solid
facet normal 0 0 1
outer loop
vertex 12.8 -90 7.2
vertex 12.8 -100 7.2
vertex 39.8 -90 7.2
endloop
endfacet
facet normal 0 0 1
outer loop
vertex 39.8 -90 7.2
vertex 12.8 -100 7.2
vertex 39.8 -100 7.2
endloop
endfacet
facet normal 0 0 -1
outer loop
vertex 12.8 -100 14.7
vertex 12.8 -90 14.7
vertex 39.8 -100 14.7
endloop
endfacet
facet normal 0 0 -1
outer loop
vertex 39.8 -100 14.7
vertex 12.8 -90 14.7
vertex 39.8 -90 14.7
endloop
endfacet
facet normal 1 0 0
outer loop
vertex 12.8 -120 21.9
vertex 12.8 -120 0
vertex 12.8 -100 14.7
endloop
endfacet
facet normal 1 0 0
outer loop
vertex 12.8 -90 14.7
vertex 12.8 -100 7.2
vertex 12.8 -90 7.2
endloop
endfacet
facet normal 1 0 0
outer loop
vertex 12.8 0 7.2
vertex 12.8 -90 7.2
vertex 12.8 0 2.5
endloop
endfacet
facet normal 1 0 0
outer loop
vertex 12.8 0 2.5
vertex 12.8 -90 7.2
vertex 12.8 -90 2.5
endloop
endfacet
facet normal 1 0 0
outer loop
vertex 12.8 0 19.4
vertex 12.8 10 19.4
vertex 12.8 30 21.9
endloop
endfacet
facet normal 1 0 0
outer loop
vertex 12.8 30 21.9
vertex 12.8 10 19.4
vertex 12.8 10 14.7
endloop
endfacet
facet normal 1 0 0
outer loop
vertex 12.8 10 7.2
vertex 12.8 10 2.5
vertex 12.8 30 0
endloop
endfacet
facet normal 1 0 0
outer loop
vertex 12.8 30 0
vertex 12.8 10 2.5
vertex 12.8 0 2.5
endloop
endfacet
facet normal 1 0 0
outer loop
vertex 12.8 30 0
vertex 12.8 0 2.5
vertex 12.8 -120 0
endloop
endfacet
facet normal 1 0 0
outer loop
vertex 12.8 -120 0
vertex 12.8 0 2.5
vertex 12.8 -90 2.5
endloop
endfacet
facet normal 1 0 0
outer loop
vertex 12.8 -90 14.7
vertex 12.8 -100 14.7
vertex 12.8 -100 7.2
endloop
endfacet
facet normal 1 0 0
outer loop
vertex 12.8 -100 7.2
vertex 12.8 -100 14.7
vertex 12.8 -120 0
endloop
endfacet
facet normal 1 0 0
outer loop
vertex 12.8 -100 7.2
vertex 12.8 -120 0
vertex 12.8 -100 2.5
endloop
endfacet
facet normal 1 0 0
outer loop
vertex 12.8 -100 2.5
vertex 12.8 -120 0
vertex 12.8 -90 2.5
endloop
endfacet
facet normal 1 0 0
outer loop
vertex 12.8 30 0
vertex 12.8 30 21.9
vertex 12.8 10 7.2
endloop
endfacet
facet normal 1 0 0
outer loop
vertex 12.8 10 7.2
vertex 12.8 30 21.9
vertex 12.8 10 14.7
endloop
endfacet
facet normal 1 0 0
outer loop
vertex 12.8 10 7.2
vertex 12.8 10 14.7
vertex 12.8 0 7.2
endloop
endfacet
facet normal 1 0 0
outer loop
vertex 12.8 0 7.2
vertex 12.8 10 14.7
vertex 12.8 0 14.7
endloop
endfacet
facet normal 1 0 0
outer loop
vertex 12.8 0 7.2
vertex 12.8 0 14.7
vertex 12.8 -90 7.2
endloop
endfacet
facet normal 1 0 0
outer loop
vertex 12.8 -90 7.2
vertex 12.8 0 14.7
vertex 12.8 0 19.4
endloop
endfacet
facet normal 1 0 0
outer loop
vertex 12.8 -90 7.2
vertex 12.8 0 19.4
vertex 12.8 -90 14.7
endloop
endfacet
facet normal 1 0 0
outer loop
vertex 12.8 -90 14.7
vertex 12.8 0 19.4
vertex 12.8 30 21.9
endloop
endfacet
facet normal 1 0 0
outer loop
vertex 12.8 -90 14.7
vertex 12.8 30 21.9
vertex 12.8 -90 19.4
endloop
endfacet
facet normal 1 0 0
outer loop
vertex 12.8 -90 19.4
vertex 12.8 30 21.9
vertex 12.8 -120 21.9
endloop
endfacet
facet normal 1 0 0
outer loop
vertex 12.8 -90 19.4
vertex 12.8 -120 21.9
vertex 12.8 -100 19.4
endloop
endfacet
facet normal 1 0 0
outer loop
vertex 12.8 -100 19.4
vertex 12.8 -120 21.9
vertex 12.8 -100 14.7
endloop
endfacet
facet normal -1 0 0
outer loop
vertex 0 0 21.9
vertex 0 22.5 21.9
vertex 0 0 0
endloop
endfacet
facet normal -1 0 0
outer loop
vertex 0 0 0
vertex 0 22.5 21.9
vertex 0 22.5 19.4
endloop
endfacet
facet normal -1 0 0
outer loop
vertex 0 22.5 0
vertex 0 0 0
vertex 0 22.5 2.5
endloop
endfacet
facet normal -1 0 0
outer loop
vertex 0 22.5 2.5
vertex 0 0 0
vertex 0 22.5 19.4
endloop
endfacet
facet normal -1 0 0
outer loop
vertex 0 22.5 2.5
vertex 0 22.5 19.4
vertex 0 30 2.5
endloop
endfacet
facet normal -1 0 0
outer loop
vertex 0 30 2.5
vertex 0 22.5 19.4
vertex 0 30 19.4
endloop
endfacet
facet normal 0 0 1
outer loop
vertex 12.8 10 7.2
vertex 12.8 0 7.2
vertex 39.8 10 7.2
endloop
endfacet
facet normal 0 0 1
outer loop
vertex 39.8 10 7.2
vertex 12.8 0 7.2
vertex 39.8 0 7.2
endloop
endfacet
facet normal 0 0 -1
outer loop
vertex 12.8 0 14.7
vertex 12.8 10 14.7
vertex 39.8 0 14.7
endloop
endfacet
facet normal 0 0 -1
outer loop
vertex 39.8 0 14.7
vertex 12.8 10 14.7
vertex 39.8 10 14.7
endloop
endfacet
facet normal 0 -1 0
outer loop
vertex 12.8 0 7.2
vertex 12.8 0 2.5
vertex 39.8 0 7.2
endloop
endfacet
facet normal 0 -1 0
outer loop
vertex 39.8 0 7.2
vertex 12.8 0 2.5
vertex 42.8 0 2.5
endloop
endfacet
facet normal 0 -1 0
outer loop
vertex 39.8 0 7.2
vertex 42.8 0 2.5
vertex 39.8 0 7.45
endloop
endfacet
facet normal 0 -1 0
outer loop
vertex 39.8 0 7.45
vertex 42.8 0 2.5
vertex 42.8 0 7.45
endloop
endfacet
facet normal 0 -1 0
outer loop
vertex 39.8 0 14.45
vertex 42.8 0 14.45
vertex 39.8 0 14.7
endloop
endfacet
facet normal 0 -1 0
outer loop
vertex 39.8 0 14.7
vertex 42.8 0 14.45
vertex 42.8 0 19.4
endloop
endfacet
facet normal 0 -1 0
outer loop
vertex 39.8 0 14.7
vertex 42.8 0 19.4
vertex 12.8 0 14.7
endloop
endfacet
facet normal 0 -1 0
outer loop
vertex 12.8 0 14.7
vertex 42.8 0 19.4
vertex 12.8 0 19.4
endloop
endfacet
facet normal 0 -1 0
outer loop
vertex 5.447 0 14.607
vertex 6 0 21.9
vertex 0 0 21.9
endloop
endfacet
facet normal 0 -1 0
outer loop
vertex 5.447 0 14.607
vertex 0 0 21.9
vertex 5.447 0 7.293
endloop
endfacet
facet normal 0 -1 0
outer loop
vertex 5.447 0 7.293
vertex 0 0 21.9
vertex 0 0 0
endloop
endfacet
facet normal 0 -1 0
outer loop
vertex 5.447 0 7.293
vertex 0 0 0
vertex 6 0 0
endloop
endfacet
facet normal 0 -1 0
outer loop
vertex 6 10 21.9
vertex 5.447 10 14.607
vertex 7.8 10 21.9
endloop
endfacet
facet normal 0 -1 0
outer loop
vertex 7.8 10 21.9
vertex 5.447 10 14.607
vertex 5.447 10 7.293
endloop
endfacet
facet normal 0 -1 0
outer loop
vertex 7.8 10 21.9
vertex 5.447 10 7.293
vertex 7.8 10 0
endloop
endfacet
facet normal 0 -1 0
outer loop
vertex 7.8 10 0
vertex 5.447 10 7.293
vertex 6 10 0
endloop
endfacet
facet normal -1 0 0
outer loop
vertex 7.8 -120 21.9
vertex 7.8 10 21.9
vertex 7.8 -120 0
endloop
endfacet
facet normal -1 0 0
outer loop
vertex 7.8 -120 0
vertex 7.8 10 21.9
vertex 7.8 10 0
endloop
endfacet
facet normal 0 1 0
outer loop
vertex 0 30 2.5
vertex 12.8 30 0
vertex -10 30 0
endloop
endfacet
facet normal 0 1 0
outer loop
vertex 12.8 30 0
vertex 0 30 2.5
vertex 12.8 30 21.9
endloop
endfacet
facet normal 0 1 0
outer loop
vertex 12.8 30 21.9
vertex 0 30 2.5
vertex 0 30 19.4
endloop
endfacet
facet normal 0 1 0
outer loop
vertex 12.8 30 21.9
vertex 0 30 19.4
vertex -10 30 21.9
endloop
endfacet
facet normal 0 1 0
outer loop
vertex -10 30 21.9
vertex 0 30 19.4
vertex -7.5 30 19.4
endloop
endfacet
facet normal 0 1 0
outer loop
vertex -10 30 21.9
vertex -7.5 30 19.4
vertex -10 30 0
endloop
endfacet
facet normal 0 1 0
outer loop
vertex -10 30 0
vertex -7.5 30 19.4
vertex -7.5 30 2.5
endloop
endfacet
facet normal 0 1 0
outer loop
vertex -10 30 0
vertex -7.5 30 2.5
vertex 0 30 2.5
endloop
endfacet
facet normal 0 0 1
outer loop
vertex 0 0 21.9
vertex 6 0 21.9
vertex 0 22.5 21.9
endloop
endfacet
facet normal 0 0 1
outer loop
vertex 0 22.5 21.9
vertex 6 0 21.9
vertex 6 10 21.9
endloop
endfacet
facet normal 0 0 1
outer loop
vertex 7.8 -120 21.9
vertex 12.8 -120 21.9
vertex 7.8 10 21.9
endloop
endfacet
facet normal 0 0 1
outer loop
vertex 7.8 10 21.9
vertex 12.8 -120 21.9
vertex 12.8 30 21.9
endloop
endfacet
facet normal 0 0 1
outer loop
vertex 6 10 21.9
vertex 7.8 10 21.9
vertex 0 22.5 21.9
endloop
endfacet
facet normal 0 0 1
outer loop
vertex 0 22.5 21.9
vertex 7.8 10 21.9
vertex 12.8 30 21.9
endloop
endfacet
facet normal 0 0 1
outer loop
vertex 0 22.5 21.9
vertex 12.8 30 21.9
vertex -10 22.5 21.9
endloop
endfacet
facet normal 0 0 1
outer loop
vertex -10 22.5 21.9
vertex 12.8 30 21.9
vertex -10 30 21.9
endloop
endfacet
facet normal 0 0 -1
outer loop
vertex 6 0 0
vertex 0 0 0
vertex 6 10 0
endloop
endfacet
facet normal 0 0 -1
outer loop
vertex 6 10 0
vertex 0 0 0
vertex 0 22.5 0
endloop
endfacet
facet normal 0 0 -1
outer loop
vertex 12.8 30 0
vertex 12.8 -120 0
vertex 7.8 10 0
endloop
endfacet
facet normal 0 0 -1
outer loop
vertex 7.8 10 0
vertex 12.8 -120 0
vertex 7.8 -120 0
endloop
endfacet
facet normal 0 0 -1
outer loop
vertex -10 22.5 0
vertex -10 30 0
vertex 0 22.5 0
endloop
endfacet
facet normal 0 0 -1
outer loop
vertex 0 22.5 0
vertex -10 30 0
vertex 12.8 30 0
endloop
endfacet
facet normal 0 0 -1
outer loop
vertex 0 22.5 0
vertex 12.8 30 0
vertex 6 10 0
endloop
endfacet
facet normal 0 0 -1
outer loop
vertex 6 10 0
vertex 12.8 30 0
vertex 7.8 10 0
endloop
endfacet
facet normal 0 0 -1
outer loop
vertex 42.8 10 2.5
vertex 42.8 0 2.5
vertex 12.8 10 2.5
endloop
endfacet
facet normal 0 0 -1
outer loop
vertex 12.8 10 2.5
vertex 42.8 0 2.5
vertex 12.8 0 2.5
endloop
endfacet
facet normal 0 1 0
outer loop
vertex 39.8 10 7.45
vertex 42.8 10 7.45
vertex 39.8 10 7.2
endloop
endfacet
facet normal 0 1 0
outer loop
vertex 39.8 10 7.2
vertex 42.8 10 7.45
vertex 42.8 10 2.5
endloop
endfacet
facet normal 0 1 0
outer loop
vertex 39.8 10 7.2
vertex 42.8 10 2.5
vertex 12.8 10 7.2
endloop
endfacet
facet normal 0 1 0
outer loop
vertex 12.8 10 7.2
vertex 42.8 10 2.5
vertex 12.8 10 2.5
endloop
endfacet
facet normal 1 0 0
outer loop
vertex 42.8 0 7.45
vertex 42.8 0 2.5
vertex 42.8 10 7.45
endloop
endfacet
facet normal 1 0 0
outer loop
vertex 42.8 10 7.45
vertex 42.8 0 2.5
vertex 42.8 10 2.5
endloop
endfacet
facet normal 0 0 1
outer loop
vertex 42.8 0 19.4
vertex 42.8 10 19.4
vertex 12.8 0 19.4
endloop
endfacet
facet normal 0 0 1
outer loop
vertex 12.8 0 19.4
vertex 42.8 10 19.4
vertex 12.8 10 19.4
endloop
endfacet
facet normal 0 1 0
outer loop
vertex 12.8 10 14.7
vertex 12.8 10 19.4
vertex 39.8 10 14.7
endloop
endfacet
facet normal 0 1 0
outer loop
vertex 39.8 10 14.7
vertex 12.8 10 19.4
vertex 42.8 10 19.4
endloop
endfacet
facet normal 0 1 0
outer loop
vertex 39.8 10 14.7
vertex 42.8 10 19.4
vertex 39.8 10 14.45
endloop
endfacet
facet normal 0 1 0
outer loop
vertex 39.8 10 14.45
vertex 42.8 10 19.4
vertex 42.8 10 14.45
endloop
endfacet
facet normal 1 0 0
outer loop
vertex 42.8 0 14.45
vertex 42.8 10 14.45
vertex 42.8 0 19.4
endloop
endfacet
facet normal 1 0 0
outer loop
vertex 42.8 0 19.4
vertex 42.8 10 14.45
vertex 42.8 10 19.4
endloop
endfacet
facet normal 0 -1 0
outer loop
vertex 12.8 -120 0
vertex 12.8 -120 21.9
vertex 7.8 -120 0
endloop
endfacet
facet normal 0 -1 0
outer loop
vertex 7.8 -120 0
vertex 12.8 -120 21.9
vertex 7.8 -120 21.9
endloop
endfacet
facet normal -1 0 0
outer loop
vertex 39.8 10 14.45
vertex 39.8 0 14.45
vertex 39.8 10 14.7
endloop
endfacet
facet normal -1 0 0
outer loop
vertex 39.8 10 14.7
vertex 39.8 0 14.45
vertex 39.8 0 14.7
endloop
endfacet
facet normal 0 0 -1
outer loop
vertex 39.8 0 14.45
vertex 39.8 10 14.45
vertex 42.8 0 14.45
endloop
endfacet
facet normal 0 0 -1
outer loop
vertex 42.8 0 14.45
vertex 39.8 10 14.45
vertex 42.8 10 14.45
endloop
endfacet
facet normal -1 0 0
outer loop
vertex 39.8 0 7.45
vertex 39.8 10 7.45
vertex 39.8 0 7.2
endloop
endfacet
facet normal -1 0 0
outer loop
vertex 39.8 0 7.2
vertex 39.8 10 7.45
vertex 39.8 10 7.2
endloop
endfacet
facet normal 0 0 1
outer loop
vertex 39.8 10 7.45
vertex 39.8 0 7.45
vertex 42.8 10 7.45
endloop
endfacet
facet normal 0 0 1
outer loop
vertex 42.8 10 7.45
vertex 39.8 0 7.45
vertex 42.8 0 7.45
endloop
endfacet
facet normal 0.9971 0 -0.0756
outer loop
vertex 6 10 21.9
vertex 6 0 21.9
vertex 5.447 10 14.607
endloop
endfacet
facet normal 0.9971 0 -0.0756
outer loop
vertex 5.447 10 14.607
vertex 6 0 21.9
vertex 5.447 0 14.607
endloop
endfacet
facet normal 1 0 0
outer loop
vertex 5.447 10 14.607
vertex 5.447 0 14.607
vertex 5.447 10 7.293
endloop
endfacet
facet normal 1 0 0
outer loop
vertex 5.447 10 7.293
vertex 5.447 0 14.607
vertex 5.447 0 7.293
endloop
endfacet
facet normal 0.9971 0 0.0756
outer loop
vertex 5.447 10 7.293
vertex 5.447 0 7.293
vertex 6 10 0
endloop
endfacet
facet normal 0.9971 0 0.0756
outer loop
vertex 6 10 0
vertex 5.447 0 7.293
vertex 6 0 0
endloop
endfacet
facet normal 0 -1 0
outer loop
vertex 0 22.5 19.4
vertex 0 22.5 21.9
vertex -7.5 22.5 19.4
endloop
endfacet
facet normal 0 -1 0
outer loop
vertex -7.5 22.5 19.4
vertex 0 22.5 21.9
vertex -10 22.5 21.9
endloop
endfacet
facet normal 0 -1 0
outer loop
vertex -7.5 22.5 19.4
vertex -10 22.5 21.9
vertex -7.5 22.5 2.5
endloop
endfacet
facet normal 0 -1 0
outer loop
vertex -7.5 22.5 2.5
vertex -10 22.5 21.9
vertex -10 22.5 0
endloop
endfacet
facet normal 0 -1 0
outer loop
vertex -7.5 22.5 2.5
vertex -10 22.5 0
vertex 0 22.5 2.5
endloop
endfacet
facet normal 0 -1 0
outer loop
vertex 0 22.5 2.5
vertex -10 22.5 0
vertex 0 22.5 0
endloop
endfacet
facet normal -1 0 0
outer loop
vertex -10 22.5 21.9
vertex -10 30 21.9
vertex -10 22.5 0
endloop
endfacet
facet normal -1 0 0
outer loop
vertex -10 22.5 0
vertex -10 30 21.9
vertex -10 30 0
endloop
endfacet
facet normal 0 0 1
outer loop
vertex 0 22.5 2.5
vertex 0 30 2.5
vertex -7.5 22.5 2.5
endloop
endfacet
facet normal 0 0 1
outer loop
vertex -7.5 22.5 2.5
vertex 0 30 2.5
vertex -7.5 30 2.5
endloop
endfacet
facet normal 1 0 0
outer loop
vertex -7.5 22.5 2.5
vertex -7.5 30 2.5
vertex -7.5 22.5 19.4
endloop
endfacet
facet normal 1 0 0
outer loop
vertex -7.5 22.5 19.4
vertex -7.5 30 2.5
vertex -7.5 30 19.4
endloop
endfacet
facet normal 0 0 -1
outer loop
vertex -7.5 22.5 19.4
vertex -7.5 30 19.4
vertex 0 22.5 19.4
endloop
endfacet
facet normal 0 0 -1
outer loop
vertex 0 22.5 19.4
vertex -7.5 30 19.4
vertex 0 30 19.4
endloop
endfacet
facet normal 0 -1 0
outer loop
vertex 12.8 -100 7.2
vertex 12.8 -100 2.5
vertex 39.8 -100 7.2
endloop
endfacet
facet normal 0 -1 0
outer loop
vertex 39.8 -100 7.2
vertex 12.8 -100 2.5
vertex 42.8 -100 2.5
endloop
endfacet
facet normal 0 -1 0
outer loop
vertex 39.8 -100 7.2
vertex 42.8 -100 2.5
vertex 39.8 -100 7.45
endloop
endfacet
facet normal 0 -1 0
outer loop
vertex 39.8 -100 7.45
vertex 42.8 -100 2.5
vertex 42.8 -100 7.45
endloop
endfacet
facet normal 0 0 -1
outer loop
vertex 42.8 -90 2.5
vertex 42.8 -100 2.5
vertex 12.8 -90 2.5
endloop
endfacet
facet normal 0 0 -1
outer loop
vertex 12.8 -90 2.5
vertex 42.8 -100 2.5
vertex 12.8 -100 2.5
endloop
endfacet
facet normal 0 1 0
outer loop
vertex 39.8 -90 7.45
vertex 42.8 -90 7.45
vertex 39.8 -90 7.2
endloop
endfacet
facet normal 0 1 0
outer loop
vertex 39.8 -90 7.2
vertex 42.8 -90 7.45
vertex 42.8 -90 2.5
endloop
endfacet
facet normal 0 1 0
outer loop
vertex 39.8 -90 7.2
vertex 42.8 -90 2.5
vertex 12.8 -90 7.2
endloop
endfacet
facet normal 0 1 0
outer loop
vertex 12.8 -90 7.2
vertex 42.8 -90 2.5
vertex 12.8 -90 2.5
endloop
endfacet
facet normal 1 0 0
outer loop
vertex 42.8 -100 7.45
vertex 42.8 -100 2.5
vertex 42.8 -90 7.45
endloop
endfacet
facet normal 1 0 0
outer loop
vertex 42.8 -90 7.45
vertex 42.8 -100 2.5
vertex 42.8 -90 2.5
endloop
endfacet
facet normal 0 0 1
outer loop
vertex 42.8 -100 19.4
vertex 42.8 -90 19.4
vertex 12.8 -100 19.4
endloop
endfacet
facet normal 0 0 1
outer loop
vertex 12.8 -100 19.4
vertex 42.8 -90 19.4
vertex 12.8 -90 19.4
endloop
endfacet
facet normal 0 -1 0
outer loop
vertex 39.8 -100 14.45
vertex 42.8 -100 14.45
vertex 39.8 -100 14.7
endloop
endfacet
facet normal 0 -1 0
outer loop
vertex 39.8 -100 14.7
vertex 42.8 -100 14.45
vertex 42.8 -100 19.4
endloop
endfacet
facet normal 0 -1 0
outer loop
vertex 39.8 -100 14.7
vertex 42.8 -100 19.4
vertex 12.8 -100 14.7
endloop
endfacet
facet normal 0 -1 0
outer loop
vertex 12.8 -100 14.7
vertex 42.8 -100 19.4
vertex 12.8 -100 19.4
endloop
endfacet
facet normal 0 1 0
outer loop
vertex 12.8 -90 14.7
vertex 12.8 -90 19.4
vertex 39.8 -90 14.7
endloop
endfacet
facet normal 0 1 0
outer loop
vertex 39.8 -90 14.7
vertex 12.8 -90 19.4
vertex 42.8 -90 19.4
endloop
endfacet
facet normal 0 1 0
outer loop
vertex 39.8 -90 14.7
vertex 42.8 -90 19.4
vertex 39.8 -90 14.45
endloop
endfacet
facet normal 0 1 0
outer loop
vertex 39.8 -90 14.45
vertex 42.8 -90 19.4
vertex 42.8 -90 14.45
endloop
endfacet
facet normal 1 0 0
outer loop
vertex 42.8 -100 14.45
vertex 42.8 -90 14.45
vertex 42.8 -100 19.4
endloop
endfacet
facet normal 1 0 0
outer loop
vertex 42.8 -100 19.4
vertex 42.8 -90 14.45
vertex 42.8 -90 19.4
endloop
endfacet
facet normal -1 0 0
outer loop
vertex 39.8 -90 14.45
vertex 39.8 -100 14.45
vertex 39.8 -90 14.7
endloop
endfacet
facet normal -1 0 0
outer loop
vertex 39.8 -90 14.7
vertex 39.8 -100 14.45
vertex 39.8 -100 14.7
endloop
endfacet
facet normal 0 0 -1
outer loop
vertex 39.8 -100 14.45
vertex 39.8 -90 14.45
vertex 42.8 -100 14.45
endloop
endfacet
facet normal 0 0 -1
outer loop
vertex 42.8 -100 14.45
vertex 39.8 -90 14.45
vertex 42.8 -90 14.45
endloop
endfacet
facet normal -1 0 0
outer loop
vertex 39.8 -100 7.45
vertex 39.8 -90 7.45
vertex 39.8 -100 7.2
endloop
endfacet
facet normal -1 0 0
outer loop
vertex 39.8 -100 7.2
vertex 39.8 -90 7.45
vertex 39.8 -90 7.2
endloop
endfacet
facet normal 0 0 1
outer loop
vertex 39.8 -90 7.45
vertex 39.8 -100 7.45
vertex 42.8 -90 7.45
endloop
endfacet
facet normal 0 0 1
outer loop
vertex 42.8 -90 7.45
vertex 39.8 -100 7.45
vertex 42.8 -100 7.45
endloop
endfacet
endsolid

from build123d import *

# Parameters (mm, degrees)
BOSS_EXTRUDE1_DEPTH      = 21.9
SKETCH2_W                = 4.7
SKETCH2_H                = 10
BOSS_EXTRUDE2_DEPTH      = 30
SKETCH3_W                = 5
SKETCH3_H                = 21.9
BOSS_EXTRUDE3_DEPTH      = 120
SKETCH4_W                = 3
SKETCH4_H                = 10
BOSS_EXTRUDE4_DEPTH      = 0.25
SKETCH5_W                = 3
SKETCH5_H                = 10
BOSS_EXTRUDE5_DEPTH      = 0.25
CORTE_EXTRUS_O1_DEPTH    = 10
ESBO_O3_W                = 21.9
ESBO_O3_H                = 7.5
RESSALTO_EXTRUS_O2_DEPTH = 10
ESBO_O4_W                = 7.5
ESBO_O4_H                = 16.9
CORTE_EXTRUS_O2_DEPTH    = 10
PADR_O_LINEAR1_COUNT     = 2
PADR_O_LINEAR1_PITCH     = 100


with BuildPart() as part:
    # Sketch1 → Boss-Extrude1 (new body)
    with BuildSketch(Plane.XY):
        Polygon((0, 0), (0, 30), (12.8, 30), (12.8, 0), (7.8, 0), (7.8, 10), (6, 10), (6, 0), align=None)
    extrude(amount=BOSS_EXTRUDE1_DEPTH)

    # Sketch2 → Boss-Extrude2 (add)
    with BuildSketch(Plane(origin=(12.8, 0, 0), x_dir=(0, 0, -1), z_dir=(1, 0, 0))):
        with Locations((-17.05, 5)):
            Rectangle(SKETCH2_W, SKETCH2_H)
        with Locations((-4.85, 5)):
            Rectangle(SKETCH2_W, SKETCH2_H)
    boss_extrude2 = extrude(amount=BOSS_EXTRUDE2_DEPTH)

    # Sketch3 → Boss-Extrude3 (add)
    with BuildSketch(Plane.XZ):
        with Locations((10.3, 10.95)):
            Rectangle(SKETCH3_W, SKETCH3_H)
    extrude(amount=BOSS_EXTRUDE3_DEPTH)

    # Sketch4 → Boss-Extrude4 (add)
    with BuildSketch(Plane(origin=(0, 0, 14.7), x_dir=(-1, 0, 0), z_dir=(0, 0, -1))):
        with Locations((-41.3, 5)):
            Rectangle(SKETCH4_W, SKETCH4_H)
    boss_extrude4 = extrude(amount=BOSS_EXTRUDE4_DEPTH)

    # Sketch5 → Boss-Extrude5 (add)
    with BuildSketch(Plane.XY.offset(7.2)):
        with Locations((41.3, 5)):
            Rectangle(SKETCH5_W, SKETCH5_H)
    boss_extrude5 = extrude(amount=BOSS_EXTRUDE5_DEPTH)

    # Esboço2 → Corte-extrusão1 (cut)
    with BuildSketch(Plane.XZ):
        with BuildLine():
            Line((6, 21.9), (6, 0))
            ThreePointArc((6, 0), (5.377380148, 10.95), (6, 21.9))
        make_face()
    extrude(amount=-CORTE_EXTRUS_O1_DEPTH, mode=Mode.SUBTRACT)

    # Esboço3 → Ressalto-extrusão2 (add)
    with BuildSketch(Plane.ZY):
        with Locations((10.95, 26.25)):
            Rectangle(ESBO_O3_W, ESBO_O3_H)
    extrude(amount=RESSALTO_EXTRUS_O2_DEPTH)

    # Esboço4 → Corte-extrusão2 (cut)
    with BuildSketch(Plane.XZ.offset(-22.5)):
        with Locations((-3.75, 10.95)):
            Rectangle(ESBO_O4_W, ESBO_O4_H)
    extrude(amount=-CORTE_EXTRUS_O2_DEPTH, mode=Mode.SUBTRACT)

    # Padrão linear1: Boss-Extrude2, Boss-Extrude4, Boss-Extrude5 ×2
    with Locations(*[(0, -i * PADR_O_LINEAR1_PITCH, 0) for i in range(1, PADR_O_LINEAR1_COUNT)]):
        add(boss_extrude2)
        add(boss_extrude4)
        add(boss_extrude5)


solid = part.part
